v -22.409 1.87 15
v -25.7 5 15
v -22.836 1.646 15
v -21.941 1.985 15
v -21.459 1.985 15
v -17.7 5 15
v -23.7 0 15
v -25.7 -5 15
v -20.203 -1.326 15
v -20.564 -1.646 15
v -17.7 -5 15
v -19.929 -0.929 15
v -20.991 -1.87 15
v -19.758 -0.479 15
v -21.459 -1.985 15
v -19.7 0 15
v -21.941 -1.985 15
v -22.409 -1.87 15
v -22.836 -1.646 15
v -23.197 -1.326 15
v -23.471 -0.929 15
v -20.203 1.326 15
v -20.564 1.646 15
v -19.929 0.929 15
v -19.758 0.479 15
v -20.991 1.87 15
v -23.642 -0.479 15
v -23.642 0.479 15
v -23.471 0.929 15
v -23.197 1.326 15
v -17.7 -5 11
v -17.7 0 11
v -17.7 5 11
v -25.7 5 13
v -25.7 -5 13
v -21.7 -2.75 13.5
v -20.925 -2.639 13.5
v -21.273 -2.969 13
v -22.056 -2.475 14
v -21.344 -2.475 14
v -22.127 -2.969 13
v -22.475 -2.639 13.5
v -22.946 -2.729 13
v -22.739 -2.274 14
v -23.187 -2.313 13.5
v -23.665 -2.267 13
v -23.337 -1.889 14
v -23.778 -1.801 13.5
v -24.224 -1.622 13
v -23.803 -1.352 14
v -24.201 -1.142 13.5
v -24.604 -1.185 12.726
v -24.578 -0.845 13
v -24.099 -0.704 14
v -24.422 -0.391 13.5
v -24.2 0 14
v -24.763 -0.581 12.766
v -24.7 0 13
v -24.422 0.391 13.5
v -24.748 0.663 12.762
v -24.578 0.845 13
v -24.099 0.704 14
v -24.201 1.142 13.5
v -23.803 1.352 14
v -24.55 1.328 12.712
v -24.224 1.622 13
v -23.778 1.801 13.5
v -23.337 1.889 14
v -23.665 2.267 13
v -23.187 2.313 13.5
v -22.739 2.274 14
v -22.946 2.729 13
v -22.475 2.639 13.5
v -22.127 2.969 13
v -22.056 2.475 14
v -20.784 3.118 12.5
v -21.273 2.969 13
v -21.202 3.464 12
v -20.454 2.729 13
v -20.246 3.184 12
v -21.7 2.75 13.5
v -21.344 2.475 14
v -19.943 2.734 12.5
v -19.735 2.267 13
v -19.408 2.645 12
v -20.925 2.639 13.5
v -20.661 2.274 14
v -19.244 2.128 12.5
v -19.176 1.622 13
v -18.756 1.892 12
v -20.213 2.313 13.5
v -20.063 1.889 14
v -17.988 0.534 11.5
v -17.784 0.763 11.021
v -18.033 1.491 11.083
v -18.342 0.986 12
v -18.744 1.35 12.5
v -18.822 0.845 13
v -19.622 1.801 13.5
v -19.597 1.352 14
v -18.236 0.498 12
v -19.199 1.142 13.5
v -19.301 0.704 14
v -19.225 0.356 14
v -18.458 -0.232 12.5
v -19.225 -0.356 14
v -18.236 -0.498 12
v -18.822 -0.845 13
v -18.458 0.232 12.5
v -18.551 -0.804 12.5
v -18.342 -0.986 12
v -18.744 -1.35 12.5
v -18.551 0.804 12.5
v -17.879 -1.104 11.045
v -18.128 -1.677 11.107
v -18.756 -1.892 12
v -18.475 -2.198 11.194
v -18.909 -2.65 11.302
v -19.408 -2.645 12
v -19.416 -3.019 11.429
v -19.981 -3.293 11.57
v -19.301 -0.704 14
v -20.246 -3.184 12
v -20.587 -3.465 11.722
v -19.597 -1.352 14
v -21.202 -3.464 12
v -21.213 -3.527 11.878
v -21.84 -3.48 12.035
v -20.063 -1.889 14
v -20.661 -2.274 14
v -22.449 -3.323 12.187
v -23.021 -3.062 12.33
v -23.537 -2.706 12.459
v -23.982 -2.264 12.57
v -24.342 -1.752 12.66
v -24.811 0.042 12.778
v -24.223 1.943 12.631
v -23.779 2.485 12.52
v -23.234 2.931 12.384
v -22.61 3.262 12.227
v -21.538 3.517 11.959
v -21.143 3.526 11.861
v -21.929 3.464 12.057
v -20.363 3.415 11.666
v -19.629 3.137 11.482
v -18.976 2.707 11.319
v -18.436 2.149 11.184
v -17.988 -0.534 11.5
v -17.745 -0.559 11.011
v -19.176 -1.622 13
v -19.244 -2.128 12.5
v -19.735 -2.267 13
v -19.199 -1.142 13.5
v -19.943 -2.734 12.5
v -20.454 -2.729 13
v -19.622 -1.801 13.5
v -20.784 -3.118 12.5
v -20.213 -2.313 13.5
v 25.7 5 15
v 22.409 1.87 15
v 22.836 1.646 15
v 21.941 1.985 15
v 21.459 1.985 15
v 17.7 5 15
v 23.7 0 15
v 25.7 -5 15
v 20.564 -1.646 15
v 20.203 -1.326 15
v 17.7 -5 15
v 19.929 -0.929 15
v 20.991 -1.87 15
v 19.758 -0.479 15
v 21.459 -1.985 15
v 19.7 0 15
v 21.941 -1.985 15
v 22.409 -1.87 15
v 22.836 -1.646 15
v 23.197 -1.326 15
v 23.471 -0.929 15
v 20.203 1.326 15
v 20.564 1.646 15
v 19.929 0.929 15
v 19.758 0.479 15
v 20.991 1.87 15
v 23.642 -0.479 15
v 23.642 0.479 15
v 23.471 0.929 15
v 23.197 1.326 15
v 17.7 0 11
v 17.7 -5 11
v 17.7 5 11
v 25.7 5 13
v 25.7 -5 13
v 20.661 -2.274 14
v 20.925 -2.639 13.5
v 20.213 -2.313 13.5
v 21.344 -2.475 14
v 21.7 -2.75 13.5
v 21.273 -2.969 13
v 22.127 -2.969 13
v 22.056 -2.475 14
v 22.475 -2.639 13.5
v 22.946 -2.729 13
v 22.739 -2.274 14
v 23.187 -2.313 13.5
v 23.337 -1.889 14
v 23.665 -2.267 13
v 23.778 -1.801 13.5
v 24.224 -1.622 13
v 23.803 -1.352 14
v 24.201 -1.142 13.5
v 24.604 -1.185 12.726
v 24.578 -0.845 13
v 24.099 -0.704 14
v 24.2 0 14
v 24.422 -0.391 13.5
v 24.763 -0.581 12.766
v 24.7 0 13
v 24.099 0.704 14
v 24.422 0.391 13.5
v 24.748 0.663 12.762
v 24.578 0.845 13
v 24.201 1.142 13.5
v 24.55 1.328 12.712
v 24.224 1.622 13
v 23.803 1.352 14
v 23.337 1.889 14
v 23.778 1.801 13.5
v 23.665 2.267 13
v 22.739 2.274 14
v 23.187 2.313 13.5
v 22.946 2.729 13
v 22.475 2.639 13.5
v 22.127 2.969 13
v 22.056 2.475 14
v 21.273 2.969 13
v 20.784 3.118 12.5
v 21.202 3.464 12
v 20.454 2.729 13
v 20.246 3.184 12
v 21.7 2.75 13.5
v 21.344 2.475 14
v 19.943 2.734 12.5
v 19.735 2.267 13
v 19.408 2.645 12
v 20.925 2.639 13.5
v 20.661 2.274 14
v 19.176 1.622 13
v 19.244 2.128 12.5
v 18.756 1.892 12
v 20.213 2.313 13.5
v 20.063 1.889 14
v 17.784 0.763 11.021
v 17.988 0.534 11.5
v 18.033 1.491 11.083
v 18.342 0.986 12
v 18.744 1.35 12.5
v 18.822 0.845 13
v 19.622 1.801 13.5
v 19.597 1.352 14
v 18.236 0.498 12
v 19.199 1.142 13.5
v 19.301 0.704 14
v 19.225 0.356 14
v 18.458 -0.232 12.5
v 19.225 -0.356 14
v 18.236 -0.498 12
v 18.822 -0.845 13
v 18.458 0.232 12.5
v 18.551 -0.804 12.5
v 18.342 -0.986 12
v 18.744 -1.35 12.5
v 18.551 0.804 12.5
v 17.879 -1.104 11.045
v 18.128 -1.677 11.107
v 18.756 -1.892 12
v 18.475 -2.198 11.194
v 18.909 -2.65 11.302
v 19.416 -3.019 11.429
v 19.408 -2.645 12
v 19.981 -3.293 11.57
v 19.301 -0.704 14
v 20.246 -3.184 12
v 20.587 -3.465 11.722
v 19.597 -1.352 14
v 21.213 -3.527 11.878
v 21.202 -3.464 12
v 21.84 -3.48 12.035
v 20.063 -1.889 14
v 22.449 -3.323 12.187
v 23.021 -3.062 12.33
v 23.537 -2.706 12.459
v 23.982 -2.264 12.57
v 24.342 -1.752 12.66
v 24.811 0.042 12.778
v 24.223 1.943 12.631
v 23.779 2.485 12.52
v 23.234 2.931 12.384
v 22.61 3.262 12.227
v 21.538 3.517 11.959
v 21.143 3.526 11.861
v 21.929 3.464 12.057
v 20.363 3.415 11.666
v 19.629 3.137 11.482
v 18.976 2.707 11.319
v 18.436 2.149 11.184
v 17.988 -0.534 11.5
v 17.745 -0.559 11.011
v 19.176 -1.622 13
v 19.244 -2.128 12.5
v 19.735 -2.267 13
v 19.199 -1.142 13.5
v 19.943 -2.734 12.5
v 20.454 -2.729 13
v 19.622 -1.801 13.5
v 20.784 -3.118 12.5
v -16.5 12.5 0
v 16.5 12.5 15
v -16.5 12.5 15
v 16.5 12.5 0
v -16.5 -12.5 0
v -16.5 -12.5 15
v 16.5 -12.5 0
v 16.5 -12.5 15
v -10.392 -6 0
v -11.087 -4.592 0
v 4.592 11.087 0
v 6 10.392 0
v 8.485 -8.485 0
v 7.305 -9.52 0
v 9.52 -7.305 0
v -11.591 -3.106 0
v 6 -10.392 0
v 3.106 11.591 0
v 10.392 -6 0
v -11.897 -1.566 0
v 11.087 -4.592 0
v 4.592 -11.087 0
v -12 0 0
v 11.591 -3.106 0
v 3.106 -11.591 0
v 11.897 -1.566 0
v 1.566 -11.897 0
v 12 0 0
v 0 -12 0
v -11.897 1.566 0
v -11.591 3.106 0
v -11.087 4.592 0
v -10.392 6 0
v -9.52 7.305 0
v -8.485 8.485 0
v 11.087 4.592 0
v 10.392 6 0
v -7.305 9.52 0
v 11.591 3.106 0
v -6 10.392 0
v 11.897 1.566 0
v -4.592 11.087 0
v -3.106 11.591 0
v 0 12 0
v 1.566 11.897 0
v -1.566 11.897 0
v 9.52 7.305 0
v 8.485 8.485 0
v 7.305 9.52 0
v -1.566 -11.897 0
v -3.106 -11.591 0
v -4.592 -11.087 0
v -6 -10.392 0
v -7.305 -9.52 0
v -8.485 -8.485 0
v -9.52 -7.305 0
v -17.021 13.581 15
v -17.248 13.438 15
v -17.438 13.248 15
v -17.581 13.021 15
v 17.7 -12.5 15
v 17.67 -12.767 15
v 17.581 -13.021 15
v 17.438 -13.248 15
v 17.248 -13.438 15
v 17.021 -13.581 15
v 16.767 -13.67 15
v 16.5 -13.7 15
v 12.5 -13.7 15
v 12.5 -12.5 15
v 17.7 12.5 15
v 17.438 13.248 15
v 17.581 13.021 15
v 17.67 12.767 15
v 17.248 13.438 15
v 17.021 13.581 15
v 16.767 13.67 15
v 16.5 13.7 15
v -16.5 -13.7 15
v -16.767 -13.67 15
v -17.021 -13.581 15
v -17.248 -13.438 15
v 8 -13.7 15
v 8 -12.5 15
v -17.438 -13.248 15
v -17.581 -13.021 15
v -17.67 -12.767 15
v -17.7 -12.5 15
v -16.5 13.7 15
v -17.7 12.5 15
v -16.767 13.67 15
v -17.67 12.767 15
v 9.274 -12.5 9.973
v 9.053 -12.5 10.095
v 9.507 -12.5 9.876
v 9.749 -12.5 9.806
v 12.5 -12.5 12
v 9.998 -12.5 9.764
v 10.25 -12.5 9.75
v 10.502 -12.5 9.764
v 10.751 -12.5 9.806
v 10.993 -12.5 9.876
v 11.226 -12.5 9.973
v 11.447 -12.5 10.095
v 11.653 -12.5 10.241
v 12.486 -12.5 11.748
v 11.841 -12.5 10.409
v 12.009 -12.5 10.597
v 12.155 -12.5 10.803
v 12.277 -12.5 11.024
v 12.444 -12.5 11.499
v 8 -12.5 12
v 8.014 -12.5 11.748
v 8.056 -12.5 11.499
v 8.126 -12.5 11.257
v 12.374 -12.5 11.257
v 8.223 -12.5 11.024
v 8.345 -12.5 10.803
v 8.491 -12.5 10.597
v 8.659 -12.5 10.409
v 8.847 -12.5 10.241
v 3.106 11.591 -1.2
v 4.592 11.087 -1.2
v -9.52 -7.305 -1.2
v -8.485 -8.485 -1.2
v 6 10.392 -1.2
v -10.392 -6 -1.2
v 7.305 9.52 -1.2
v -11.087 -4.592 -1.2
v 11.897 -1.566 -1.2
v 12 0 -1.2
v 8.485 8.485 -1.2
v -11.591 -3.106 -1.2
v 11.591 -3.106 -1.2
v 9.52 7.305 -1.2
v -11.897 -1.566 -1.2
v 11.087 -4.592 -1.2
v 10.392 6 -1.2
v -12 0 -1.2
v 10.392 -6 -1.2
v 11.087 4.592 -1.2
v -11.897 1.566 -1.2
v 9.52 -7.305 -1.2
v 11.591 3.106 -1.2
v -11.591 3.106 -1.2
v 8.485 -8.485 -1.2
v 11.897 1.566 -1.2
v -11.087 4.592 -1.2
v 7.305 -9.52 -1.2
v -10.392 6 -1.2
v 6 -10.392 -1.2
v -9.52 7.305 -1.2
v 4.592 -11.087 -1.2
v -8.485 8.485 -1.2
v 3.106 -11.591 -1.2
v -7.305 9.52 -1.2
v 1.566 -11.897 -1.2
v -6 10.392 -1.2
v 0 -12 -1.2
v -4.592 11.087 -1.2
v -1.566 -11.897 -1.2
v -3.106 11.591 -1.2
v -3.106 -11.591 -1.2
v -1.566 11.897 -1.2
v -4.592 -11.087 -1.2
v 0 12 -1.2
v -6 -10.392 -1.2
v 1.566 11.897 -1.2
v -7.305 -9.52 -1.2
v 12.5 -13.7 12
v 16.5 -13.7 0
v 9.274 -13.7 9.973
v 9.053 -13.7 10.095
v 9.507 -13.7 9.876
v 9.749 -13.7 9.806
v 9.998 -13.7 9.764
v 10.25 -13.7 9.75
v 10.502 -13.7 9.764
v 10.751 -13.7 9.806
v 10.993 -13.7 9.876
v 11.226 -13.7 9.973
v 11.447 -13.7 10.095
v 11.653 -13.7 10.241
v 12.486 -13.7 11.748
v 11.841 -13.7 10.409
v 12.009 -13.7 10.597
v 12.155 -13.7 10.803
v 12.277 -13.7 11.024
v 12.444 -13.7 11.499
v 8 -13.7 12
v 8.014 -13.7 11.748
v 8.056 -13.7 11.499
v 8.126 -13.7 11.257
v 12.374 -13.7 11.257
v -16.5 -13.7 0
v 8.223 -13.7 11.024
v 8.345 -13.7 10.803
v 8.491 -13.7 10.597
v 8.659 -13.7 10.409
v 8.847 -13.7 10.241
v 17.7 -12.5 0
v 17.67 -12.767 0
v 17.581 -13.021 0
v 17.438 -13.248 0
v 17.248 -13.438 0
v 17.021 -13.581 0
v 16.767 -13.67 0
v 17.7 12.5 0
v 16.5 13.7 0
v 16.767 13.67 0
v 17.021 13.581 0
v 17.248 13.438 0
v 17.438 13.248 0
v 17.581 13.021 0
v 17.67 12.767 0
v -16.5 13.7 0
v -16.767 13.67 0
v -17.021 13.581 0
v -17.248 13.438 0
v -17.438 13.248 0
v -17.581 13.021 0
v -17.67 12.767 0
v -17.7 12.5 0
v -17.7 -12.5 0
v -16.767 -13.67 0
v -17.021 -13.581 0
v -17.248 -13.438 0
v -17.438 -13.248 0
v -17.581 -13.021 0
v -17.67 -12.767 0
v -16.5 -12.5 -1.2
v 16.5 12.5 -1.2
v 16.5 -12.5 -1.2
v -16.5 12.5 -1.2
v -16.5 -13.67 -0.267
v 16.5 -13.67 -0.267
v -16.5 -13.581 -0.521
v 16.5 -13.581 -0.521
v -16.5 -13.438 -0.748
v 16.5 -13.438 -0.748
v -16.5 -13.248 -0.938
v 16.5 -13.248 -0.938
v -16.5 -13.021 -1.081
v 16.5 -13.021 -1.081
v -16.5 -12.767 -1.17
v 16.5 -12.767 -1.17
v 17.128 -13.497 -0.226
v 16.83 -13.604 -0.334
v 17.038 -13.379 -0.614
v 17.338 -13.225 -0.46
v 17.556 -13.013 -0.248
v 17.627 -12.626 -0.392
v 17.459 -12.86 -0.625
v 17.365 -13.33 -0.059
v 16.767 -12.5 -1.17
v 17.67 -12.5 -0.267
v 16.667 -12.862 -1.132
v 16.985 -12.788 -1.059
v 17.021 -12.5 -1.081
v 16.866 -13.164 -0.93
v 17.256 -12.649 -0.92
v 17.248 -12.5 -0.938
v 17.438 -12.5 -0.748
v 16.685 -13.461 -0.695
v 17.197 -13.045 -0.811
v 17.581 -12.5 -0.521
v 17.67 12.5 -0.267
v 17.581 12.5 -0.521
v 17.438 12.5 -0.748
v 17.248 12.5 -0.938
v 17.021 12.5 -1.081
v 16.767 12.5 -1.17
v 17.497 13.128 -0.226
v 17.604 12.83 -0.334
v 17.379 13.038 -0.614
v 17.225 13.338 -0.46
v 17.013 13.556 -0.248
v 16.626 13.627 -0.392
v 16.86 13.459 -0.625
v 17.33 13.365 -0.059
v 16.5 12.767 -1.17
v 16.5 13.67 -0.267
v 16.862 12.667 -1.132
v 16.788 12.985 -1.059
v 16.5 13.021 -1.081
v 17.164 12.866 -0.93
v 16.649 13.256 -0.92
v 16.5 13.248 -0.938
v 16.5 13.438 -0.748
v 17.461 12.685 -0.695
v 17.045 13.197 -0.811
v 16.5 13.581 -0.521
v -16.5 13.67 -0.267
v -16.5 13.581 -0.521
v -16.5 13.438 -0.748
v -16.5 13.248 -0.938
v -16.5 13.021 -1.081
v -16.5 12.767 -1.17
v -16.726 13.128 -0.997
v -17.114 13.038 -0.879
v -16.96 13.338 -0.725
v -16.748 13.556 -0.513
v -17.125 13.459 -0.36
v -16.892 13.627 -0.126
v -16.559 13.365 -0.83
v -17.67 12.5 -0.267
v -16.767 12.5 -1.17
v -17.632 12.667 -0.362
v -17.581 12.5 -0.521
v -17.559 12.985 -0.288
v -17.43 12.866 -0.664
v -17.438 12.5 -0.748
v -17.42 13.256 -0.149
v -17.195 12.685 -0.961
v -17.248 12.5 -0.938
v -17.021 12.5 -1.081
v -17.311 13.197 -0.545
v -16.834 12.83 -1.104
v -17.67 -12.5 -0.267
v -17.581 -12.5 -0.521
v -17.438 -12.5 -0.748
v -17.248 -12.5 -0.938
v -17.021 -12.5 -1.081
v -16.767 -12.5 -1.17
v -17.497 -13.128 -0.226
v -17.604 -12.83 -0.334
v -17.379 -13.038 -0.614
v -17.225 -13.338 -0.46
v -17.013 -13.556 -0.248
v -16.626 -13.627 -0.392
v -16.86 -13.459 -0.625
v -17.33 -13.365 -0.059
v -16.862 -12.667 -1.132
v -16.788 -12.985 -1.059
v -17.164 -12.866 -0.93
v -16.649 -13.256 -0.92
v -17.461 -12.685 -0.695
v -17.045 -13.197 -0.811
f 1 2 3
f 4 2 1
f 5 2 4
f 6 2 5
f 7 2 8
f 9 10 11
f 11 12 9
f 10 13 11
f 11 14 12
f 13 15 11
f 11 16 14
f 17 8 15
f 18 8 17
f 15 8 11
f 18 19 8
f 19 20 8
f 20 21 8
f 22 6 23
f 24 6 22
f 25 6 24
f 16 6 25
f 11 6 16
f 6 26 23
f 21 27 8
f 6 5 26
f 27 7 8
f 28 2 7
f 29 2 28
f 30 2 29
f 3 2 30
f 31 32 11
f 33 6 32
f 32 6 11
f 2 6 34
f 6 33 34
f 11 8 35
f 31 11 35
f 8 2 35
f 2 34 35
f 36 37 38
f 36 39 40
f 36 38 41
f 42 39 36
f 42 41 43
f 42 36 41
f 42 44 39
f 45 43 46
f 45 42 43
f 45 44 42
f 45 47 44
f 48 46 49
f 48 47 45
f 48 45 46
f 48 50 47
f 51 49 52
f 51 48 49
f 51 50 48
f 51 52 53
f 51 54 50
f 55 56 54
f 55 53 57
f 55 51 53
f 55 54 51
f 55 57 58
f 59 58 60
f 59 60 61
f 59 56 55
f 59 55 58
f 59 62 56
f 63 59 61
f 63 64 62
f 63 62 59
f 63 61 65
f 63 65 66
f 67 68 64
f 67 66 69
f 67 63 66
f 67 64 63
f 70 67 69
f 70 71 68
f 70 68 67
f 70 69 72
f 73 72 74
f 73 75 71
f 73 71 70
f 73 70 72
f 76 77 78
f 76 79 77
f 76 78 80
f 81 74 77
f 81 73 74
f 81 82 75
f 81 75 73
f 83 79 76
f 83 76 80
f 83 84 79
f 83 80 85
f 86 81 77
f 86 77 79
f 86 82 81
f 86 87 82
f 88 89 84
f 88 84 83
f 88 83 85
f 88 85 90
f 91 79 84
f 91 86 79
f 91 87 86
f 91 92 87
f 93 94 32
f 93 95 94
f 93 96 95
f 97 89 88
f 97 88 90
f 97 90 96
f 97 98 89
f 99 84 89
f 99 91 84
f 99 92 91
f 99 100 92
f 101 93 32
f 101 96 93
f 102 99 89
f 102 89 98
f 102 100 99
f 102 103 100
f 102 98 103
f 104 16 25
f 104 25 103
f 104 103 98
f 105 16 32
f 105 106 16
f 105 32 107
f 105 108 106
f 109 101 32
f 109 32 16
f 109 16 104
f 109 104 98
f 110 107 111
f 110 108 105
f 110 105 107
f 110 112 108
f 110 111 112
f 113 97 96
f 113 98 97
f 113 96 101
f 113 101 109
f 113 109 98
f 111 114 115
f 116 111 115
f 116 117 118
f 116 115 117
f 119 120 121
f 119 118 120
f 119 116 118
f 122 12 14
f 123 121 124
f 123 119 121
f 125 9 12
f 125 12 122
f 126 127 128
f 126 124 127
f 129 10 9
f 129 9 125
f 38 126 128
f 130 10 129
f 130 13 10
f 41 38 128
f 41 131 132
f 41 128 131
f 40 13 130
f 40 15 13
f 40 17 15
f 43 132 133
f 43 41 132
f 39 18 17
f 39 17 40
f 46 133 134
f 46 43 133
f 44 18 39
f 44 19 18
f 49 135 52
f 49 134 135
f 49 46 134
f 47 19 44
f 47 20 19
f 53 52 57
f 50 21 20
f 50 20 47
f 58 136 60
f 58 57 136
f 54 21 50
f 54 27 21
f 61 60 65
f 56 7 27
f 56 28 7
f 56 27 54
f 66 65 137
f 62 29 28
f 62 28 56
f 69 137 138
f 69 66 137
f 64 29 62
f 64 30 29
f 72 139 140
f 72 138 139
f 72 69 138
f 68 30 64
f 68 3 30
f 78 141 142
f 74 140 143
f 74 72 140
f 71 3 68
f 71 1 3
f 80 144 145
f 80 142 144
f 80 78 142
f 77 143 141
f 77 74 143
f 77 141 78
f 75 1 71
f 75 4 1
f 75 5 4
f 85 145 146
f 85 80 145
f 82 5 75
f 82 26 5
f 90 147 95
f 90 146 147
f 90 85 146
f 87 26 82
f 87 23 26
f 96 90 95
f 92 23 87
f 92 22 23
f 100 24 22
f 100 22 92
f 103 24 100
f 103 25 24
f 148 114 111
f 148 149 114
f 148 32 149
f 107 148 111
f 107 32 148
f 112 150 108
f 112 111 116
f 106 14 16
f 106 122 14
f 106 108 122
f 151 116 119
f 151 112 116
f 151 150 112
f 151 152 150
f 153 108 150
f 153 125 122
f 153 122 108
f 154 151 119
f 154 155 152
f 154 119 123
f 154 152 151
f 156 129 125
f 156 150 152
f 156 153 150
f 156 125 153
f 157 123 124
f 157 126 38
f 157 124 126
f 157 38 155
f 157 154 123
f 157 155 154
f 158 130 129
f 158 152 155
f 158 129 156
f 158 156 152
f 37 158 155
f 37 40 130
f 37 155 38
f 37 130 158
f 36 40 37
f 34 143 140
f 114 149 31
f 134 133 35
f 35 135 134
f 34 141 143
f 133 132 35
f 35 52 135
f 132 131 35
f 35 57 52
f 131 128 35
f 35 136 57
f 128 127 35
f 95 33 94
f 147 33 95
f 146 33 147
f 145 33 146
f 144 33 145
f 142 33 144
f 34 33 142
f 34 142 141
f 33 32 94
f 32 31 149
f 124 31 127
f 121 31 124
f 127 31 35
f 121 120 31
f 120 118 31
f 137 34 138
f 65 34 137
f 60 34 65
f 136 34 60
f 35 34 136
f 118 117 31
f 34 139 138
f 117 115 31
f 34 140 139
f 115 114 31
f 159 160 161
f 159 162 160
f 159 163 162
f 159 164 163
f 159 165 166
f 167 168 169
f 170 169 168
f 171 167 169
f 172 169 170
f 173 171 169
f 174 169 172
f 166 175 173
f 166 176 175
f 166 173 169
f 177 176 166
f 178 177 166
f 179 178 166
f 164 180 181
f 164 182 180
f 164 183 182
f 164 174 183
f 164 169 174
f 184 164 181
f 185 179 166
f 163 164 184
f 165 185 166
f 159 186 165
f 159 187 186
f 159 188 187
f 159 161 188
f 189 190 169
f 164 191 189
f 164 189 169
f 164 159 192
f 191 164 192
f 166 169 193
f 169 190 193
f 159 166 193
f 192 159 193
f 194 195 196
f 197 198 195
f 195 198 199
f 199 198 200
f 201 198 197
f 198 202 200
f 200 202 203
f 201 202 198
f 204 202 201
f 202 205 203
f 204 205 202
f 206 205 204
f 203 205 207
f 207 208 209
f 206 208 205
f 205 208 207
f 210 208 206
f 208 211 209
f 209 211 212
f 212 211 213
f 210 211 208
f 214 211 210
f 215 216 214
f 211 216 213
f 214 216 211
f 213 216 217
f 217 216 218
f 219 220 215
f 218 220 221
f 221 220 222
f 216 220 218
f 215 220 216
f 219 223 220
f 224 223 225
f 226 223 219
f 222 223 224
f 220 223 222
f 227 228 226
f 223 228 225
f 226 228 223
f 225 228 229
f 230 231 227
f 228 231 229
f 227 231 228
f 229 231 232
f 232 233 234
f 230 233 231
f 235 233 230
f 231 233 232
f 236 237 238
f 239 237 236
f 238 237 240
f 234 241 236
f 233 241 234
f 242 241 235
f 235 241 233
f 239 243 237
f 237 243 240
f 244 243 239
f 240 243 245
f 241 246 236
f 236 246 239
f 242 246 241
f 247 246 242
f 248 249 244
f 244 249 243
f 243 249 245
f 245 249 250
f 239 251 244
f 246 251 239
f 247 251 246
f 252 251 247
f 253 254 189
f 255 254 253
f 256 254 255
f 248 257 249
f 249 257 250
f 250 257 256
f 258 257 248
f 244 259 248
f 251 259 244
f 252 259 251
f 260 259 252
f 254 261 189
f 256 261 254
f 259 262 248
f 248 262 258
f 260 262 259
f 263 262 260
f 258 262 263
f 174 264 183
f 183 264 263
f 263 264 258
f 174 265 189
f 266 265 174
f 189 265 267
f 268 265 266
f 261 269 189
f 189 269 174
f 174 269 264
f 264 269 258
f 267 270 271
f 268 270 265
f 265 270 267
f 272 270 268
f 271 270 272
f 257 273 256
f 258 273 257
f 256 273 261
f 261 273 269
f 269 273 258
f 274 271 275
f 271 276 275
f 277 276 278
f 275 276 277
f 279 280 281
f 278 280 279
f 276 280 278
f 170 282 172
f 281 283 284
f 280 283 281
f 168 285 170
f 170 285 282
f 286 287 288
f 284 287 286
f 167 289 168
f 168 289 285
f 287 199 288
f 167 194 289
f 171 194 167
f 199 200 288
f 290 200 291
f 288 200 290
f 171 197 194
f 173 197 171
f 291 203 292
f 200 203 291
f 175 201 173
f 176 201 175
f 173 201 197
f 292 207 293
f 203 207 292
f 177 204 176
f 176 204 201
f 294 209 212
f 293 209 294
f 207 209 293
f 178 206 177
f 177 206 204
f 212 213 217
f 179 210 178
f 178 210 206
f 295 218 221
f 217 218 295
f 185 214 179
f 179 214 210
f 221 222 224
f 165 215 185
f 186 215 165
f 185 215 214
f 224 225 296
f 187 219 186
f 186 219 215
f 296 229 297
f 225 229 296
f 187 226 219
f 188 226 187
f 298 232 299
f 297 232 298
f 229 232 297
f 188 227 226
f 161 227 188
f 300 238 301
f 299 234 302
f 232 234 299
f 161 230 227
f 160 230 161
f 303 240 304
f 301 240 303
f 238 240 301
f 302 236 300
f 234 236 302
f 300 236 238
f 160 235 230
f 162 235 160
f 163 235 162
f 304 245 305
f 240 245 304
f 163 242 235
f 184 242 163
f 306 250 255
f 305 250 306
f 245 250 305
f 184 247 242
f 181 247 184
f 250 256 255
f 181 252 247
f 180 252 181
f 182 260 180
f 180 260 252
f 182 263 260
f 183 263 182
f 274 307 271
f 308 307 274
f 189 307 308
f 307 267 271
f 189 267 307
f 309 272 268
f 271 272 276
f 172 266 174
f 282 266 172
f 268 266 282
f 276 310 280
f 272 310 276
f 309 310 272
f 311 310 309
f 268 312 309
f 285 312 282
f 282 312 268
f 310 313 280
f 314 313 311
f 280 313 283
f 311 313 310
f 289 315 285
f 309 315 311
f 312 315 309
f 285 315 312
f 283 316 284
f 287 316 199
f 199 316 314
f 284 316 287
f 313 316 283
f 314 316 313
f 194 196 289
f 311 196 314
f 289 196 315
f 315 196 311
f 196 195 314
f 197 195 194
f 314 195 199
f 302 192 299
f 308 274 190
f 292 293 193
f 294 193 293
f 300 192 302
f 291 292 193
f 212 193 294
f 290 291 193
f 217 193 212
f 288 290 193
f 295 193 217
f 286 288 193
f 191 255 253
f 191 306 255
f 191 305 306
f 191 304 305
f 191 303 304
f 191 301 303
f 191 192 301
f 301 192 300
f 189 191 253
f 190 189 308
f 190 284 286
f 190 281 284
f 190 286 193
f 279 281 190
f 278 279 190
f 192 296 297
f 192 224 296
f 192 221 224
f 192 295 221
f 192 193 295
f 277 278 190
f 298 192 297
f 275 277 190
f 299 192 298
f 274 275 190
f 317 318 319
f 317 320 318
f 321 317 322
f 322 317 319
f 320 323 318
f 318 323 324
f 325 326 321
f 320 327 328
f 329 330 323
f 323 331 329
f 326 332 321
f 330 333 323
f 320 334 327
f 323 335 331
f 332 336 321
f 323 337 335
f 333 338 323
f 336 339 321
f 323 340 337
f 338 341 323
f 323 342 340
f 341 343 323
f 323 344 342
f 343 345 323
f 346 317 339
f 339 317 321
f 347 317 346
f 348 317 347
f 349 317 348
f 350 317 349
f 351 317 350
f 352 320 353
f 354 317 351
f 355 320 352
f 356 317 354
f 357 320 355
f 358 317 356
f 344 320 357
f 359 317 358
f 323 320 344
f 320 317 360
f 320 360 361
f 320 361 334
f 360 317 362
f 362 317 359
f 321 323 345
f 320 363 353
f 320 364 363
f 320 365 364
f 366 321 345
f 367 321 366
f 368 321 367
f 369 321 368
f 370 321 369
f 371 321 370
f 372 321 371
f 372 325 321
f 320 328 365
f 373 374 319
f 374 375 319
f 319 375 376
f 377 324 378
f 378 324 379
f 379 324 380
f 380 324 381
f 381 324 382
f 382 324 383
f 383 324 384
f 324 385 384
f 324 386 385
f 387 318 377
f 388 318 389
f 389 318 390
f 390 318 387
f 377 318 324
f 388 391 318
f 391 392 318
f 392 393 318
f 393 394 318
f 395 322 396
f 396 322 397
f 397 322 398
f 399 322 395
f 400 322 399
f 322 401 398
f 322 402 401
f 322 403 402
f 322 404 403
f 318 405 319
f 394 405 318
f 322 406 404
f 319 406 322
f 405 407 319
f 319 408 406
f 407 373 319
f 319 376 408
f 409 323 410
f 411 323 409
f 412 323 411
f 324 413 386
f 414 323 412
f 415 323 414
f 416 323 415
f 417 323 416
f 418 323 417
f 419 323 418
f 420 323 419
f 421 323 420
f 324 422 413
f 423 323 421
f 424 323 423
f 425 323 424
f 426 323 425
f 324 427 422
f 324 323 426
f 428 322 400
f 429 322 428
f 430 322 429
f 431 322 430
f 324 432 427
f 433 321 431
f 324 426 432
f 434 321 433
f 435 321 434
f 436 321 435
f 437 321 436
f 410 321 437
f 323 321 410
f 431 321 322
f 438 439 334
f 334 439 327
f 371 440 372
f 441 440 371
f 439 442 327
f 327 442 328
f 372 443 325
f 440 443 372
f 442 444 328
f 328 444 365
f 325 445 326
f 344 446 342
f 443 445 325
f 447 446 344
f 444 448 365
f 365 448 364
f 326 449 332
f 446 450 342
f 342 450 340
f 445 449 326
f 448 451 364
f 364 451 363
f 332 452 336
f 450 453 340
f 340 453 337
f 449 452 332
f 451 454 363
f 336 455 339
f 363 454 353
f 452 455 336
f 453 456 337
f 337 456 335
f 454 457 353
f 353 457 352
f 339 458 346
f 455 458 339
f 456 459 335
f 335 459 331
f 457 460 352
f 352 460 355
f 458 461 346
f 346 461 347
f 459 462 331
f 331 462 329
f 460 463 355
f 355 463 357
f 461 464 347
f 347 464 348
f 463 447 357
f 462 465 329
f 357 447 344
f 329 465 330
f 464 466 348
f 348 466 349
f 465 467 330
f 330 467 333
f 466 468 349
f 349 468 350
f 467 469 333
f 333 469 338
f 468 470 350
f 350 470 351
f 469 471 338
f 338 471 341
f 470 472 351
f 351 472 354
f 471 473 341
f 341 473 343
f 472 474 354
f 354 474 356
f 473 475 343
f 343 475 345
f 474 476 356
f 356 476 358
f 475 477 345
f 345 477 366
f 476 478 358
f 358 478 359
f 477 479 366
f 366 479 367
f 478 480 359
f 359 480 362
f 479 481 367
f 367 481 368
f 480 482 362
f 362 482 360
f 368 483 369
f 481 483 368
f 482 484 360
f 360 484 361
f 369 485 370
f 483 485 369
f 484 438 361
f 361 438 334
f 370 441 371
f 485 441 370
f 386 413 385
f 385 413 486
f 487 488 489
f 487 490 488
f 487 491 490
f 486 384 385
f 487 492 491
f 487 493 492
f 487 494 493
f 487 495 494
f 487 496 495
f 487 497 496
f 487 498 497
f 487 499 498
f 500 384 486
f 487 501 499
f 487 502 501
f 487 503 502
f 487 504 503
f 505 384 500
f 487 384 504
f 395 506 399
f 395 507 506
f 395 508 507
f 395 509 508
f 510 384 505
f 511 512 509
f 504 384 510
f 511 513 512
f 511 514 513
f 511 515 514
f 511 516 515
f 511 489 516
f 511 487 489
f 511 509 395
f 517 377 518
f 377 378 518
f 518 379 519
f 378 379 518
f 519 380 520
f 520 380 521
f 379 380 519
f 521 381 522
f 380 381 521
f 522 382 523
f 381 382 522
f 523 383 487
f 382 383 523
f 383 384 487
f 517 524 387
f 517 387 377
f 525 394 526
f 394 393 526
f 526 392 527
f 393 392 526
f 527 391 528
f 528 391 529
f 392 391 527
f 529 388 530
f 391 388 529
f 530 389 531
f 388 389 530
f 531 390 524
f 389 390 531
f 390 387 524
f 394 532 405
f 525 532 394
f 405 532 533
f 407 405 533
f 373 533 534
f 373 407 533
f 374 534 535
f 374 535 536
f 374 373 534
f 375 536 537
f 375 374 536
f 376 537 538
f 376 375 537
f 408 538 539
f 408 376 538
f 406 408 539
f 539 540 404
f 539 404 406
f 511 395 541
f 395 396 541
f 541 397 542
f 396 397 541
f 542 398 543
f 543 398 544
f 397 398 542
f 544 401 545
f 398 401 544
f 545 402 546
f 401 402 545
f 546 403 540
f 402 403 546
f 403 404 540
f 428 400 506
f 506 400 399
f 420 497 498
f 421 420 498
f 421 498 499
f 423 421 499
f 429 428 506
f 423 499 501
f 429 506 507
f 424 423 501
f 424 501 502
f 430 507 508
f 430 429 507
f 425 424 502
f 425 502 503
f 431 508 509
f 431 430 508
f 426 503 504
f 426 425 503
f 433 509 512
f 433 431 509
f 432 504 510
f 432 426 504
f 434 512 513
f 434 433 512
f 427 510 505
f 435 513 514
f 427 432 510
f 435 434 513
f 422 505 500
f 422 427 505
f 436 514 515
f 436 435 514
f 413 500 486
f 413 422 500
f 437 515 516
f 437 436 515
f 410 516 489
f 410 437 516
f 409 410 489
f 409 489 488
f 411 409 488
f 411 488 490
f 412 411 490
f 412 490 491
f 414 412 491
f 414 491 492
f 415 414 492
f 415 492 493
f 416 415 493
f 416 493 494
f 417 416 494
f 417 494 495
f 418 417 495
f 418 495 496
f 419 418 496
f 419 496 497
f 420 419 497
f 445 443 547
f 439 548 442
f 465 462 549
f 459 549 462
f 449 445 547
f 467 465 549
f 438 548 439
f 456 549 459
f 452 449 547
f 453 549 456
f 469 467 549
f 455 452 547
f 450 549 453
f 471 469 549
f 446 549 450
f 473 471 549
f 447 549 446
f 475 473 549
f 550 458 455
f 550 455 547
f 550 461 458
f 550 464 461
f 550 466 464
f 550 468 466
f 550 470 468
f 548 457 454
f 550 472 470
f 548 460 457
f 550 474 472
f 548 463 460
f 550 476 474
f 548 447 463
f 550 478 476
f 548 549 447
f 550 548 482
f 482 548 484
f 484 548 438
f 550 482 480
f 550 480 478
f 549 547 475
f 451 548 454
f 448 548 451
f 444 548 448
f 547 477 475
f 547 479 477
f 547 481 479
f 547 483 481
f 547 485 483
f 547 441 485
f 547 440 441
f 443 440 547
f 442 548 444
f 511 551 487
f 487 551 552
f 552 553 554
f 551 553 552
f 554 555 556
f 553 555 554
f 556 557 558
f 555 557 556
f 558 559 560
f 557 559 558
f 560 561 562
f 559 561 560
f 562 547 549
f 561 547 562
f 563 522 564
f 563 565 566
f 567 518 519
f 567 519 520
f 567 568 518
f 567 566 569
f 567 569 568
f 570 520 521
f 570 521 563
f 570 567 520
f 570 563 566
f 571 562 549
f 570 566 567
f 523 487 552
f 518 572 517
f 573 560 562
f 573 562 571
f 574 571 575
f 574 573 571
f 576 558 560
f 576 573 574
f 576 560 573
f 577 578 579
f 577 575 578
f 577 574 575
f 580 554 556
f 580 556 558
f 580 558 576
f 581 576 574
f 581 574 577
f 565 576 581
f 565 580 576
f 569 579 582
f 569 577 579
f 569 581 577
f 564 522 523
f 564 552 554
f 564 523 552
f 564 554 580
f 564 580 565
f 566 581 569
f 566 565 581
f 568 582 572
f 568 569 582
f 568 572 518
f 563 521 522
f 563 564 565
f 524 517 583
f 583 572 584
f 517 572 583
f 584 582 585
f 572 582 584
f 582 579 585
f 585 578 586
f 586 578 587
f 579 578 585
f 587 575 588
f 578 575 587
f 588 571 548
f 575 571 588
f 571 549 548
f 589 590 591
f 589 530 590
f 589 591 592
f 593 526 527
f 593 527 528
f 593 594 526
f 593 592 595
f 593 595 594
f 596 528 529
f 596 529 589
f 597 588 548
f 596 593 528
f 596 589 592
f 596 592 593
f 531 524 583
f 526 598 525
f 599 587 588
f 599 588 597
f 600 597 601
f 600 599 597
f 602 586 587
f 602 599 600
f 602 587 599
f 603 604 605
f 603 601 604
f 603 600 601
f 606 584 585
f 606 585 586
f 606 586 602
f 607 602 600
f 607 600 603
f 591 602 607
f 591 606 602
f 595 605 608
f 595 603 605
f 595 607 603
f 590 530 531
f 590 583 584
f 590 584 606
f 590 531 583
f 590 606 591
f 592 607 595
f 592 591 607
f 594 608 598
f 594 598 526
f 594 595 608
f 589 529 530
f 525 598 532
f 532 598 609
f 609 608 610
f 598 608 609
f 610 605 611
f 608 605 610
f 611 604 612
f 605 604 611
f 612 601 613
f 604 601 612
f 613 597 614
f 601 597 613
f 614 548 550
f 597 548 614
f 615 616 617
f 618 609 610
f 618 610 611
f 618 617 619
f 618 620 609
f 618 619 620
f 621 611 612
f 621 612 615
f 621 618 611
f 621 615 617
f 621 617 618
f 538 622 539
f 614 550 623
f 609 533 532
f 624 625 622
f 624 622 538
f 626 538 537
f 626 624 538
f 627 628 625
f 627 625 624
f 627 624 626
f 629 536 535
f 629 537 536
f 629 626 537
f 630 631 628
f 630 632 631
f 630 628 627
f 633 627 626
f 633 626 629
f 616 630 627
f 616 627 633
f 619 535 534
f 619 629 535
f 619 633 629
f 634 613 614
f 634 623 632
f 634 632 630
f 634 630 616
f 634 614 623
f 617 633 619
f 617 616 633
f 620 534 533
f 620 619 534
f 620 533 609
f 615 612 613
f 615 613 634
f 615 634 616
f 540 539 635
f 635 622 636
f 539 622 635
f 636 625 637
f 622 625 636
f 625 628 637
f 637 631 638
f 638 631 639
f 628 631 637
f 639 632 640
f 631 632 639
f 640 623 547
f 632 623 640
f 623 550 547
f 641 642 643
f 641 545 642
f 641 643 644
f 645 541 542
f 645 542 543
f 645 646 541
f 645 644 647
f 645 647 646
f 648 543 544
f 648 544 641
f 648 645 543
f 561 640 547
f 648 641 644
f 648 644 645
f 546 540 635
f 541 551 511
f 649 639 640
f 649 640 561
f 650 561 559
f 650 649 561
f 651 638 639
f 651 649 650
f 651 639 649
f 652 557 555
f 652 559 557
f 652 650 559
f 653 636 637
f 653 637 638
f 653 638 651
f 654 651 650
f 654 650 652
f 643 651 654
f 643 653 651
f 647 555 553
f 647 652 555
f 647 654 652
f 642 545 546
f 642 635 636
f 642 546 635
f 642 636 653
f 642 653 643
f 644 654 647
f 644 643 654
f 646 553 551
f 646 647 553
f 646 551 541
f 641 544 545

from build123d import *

# Parameters (mm, degrees)
PAD001_DEPTH = 5
PAD002_DEPTH = 1.2
SKETCH_W     = 33
SKETCH_H     = 25
PAD_DEPTH    = 15
THICKNESS_T  = 1.2
SKETCH001_R  = 12
POCKET_DEPTH = 16.201


with BuildPart() as tornillo:
    # Sketch003 → Revolution (revolve)
    with BuildSketch(Plane.XZ):
        Polygon((0, 15), (0, 11), (4, 11), (2, 15), align=None)
    revolve(axis=Axis((0, 0, 0), (0, 0, 1)))


with BuildPart() as tornillo_1:
    # Body002 placement: moved
    add(tornillo.part.moved(Location((-21.7, 0, 0))))


with BuildPart() as orejahueca:
    # Sketch002 → Pad001 (new body, symmetric)
    with BuildSketch(Plane.XZ):
        Polygon((-17.7, 15), (-25.7, 15), (-25.7, 13), (-17.7, 11), align=None)
    extrude(amount=PAD001_DEPTH, both=True)

    # Cut: cut Tornillo
    add(tornillo_1.part, mode=Mode.SUBTRACT)


with BuildPart() as orejareflejada:
    # Part__Mirroring: instance of OrejaHueca
    add(orejahueca.part.mirror(Plane(origin=(0, 0, 0), x_dir=(0, -1, 0), z_dir=(1, 0, 0))))


with BuildPart() as orejas:
    # Fusion base: copy of OrejaHueca
    add(orejahueca.part)

    # Fusion: union OrejaReflejada
    add(orejareflejada.part)


with BuildPart() as cablehole:
    # Sketch004 → Pad002 (new body)
    with BuildSketch(Plane.XZ.offset(12.5)):
        with BuildLine():
            Line((8, 15), (12.5, 15))
            Line((12.5, 15), (12.5, 12))
            ThreePointArc((8, 12), (10.25, 9.75), (12.5, 12))
            Line((8, 12), (8, 15))
        make_face()
    extrude(amount=PAD002_DEPTH)


with BuildPart() as casewithcablehole:
    # Sketch → Pad (new body)
    with BuildSketch(Plane.XY):
        Rectangle(SKETCH_W, SKETCH_H)
    extrude(amount=PAD_DEPTH)

    # Thickness
    thickness_openings = [casewithcablehole.faces().sort_by_distance(p)[0] for p in [
        (0, 0, 15),
    ]]
    offset(amount=THICKNESS_T, openings=thickness_openings)

    # Sketch001 (on Face16 of Thickness) → Pocket (cut, through all)
    with BuildSketch(Plane(origin=(0, 0, -1.2), x_dir=(1, 0, 0), z_dir=(0, 0, -1))):
        Circle(SKETCH001_R)
    extrude(amount=-POCKET_DEPTH, mode=Mode.SUBTRACT)

    # Cut001: cut CableHole
    add(cablehole.part, mode=Mode.SUBTRACT)


solid = Compound([orejas.part, casewithcablehole.part])
